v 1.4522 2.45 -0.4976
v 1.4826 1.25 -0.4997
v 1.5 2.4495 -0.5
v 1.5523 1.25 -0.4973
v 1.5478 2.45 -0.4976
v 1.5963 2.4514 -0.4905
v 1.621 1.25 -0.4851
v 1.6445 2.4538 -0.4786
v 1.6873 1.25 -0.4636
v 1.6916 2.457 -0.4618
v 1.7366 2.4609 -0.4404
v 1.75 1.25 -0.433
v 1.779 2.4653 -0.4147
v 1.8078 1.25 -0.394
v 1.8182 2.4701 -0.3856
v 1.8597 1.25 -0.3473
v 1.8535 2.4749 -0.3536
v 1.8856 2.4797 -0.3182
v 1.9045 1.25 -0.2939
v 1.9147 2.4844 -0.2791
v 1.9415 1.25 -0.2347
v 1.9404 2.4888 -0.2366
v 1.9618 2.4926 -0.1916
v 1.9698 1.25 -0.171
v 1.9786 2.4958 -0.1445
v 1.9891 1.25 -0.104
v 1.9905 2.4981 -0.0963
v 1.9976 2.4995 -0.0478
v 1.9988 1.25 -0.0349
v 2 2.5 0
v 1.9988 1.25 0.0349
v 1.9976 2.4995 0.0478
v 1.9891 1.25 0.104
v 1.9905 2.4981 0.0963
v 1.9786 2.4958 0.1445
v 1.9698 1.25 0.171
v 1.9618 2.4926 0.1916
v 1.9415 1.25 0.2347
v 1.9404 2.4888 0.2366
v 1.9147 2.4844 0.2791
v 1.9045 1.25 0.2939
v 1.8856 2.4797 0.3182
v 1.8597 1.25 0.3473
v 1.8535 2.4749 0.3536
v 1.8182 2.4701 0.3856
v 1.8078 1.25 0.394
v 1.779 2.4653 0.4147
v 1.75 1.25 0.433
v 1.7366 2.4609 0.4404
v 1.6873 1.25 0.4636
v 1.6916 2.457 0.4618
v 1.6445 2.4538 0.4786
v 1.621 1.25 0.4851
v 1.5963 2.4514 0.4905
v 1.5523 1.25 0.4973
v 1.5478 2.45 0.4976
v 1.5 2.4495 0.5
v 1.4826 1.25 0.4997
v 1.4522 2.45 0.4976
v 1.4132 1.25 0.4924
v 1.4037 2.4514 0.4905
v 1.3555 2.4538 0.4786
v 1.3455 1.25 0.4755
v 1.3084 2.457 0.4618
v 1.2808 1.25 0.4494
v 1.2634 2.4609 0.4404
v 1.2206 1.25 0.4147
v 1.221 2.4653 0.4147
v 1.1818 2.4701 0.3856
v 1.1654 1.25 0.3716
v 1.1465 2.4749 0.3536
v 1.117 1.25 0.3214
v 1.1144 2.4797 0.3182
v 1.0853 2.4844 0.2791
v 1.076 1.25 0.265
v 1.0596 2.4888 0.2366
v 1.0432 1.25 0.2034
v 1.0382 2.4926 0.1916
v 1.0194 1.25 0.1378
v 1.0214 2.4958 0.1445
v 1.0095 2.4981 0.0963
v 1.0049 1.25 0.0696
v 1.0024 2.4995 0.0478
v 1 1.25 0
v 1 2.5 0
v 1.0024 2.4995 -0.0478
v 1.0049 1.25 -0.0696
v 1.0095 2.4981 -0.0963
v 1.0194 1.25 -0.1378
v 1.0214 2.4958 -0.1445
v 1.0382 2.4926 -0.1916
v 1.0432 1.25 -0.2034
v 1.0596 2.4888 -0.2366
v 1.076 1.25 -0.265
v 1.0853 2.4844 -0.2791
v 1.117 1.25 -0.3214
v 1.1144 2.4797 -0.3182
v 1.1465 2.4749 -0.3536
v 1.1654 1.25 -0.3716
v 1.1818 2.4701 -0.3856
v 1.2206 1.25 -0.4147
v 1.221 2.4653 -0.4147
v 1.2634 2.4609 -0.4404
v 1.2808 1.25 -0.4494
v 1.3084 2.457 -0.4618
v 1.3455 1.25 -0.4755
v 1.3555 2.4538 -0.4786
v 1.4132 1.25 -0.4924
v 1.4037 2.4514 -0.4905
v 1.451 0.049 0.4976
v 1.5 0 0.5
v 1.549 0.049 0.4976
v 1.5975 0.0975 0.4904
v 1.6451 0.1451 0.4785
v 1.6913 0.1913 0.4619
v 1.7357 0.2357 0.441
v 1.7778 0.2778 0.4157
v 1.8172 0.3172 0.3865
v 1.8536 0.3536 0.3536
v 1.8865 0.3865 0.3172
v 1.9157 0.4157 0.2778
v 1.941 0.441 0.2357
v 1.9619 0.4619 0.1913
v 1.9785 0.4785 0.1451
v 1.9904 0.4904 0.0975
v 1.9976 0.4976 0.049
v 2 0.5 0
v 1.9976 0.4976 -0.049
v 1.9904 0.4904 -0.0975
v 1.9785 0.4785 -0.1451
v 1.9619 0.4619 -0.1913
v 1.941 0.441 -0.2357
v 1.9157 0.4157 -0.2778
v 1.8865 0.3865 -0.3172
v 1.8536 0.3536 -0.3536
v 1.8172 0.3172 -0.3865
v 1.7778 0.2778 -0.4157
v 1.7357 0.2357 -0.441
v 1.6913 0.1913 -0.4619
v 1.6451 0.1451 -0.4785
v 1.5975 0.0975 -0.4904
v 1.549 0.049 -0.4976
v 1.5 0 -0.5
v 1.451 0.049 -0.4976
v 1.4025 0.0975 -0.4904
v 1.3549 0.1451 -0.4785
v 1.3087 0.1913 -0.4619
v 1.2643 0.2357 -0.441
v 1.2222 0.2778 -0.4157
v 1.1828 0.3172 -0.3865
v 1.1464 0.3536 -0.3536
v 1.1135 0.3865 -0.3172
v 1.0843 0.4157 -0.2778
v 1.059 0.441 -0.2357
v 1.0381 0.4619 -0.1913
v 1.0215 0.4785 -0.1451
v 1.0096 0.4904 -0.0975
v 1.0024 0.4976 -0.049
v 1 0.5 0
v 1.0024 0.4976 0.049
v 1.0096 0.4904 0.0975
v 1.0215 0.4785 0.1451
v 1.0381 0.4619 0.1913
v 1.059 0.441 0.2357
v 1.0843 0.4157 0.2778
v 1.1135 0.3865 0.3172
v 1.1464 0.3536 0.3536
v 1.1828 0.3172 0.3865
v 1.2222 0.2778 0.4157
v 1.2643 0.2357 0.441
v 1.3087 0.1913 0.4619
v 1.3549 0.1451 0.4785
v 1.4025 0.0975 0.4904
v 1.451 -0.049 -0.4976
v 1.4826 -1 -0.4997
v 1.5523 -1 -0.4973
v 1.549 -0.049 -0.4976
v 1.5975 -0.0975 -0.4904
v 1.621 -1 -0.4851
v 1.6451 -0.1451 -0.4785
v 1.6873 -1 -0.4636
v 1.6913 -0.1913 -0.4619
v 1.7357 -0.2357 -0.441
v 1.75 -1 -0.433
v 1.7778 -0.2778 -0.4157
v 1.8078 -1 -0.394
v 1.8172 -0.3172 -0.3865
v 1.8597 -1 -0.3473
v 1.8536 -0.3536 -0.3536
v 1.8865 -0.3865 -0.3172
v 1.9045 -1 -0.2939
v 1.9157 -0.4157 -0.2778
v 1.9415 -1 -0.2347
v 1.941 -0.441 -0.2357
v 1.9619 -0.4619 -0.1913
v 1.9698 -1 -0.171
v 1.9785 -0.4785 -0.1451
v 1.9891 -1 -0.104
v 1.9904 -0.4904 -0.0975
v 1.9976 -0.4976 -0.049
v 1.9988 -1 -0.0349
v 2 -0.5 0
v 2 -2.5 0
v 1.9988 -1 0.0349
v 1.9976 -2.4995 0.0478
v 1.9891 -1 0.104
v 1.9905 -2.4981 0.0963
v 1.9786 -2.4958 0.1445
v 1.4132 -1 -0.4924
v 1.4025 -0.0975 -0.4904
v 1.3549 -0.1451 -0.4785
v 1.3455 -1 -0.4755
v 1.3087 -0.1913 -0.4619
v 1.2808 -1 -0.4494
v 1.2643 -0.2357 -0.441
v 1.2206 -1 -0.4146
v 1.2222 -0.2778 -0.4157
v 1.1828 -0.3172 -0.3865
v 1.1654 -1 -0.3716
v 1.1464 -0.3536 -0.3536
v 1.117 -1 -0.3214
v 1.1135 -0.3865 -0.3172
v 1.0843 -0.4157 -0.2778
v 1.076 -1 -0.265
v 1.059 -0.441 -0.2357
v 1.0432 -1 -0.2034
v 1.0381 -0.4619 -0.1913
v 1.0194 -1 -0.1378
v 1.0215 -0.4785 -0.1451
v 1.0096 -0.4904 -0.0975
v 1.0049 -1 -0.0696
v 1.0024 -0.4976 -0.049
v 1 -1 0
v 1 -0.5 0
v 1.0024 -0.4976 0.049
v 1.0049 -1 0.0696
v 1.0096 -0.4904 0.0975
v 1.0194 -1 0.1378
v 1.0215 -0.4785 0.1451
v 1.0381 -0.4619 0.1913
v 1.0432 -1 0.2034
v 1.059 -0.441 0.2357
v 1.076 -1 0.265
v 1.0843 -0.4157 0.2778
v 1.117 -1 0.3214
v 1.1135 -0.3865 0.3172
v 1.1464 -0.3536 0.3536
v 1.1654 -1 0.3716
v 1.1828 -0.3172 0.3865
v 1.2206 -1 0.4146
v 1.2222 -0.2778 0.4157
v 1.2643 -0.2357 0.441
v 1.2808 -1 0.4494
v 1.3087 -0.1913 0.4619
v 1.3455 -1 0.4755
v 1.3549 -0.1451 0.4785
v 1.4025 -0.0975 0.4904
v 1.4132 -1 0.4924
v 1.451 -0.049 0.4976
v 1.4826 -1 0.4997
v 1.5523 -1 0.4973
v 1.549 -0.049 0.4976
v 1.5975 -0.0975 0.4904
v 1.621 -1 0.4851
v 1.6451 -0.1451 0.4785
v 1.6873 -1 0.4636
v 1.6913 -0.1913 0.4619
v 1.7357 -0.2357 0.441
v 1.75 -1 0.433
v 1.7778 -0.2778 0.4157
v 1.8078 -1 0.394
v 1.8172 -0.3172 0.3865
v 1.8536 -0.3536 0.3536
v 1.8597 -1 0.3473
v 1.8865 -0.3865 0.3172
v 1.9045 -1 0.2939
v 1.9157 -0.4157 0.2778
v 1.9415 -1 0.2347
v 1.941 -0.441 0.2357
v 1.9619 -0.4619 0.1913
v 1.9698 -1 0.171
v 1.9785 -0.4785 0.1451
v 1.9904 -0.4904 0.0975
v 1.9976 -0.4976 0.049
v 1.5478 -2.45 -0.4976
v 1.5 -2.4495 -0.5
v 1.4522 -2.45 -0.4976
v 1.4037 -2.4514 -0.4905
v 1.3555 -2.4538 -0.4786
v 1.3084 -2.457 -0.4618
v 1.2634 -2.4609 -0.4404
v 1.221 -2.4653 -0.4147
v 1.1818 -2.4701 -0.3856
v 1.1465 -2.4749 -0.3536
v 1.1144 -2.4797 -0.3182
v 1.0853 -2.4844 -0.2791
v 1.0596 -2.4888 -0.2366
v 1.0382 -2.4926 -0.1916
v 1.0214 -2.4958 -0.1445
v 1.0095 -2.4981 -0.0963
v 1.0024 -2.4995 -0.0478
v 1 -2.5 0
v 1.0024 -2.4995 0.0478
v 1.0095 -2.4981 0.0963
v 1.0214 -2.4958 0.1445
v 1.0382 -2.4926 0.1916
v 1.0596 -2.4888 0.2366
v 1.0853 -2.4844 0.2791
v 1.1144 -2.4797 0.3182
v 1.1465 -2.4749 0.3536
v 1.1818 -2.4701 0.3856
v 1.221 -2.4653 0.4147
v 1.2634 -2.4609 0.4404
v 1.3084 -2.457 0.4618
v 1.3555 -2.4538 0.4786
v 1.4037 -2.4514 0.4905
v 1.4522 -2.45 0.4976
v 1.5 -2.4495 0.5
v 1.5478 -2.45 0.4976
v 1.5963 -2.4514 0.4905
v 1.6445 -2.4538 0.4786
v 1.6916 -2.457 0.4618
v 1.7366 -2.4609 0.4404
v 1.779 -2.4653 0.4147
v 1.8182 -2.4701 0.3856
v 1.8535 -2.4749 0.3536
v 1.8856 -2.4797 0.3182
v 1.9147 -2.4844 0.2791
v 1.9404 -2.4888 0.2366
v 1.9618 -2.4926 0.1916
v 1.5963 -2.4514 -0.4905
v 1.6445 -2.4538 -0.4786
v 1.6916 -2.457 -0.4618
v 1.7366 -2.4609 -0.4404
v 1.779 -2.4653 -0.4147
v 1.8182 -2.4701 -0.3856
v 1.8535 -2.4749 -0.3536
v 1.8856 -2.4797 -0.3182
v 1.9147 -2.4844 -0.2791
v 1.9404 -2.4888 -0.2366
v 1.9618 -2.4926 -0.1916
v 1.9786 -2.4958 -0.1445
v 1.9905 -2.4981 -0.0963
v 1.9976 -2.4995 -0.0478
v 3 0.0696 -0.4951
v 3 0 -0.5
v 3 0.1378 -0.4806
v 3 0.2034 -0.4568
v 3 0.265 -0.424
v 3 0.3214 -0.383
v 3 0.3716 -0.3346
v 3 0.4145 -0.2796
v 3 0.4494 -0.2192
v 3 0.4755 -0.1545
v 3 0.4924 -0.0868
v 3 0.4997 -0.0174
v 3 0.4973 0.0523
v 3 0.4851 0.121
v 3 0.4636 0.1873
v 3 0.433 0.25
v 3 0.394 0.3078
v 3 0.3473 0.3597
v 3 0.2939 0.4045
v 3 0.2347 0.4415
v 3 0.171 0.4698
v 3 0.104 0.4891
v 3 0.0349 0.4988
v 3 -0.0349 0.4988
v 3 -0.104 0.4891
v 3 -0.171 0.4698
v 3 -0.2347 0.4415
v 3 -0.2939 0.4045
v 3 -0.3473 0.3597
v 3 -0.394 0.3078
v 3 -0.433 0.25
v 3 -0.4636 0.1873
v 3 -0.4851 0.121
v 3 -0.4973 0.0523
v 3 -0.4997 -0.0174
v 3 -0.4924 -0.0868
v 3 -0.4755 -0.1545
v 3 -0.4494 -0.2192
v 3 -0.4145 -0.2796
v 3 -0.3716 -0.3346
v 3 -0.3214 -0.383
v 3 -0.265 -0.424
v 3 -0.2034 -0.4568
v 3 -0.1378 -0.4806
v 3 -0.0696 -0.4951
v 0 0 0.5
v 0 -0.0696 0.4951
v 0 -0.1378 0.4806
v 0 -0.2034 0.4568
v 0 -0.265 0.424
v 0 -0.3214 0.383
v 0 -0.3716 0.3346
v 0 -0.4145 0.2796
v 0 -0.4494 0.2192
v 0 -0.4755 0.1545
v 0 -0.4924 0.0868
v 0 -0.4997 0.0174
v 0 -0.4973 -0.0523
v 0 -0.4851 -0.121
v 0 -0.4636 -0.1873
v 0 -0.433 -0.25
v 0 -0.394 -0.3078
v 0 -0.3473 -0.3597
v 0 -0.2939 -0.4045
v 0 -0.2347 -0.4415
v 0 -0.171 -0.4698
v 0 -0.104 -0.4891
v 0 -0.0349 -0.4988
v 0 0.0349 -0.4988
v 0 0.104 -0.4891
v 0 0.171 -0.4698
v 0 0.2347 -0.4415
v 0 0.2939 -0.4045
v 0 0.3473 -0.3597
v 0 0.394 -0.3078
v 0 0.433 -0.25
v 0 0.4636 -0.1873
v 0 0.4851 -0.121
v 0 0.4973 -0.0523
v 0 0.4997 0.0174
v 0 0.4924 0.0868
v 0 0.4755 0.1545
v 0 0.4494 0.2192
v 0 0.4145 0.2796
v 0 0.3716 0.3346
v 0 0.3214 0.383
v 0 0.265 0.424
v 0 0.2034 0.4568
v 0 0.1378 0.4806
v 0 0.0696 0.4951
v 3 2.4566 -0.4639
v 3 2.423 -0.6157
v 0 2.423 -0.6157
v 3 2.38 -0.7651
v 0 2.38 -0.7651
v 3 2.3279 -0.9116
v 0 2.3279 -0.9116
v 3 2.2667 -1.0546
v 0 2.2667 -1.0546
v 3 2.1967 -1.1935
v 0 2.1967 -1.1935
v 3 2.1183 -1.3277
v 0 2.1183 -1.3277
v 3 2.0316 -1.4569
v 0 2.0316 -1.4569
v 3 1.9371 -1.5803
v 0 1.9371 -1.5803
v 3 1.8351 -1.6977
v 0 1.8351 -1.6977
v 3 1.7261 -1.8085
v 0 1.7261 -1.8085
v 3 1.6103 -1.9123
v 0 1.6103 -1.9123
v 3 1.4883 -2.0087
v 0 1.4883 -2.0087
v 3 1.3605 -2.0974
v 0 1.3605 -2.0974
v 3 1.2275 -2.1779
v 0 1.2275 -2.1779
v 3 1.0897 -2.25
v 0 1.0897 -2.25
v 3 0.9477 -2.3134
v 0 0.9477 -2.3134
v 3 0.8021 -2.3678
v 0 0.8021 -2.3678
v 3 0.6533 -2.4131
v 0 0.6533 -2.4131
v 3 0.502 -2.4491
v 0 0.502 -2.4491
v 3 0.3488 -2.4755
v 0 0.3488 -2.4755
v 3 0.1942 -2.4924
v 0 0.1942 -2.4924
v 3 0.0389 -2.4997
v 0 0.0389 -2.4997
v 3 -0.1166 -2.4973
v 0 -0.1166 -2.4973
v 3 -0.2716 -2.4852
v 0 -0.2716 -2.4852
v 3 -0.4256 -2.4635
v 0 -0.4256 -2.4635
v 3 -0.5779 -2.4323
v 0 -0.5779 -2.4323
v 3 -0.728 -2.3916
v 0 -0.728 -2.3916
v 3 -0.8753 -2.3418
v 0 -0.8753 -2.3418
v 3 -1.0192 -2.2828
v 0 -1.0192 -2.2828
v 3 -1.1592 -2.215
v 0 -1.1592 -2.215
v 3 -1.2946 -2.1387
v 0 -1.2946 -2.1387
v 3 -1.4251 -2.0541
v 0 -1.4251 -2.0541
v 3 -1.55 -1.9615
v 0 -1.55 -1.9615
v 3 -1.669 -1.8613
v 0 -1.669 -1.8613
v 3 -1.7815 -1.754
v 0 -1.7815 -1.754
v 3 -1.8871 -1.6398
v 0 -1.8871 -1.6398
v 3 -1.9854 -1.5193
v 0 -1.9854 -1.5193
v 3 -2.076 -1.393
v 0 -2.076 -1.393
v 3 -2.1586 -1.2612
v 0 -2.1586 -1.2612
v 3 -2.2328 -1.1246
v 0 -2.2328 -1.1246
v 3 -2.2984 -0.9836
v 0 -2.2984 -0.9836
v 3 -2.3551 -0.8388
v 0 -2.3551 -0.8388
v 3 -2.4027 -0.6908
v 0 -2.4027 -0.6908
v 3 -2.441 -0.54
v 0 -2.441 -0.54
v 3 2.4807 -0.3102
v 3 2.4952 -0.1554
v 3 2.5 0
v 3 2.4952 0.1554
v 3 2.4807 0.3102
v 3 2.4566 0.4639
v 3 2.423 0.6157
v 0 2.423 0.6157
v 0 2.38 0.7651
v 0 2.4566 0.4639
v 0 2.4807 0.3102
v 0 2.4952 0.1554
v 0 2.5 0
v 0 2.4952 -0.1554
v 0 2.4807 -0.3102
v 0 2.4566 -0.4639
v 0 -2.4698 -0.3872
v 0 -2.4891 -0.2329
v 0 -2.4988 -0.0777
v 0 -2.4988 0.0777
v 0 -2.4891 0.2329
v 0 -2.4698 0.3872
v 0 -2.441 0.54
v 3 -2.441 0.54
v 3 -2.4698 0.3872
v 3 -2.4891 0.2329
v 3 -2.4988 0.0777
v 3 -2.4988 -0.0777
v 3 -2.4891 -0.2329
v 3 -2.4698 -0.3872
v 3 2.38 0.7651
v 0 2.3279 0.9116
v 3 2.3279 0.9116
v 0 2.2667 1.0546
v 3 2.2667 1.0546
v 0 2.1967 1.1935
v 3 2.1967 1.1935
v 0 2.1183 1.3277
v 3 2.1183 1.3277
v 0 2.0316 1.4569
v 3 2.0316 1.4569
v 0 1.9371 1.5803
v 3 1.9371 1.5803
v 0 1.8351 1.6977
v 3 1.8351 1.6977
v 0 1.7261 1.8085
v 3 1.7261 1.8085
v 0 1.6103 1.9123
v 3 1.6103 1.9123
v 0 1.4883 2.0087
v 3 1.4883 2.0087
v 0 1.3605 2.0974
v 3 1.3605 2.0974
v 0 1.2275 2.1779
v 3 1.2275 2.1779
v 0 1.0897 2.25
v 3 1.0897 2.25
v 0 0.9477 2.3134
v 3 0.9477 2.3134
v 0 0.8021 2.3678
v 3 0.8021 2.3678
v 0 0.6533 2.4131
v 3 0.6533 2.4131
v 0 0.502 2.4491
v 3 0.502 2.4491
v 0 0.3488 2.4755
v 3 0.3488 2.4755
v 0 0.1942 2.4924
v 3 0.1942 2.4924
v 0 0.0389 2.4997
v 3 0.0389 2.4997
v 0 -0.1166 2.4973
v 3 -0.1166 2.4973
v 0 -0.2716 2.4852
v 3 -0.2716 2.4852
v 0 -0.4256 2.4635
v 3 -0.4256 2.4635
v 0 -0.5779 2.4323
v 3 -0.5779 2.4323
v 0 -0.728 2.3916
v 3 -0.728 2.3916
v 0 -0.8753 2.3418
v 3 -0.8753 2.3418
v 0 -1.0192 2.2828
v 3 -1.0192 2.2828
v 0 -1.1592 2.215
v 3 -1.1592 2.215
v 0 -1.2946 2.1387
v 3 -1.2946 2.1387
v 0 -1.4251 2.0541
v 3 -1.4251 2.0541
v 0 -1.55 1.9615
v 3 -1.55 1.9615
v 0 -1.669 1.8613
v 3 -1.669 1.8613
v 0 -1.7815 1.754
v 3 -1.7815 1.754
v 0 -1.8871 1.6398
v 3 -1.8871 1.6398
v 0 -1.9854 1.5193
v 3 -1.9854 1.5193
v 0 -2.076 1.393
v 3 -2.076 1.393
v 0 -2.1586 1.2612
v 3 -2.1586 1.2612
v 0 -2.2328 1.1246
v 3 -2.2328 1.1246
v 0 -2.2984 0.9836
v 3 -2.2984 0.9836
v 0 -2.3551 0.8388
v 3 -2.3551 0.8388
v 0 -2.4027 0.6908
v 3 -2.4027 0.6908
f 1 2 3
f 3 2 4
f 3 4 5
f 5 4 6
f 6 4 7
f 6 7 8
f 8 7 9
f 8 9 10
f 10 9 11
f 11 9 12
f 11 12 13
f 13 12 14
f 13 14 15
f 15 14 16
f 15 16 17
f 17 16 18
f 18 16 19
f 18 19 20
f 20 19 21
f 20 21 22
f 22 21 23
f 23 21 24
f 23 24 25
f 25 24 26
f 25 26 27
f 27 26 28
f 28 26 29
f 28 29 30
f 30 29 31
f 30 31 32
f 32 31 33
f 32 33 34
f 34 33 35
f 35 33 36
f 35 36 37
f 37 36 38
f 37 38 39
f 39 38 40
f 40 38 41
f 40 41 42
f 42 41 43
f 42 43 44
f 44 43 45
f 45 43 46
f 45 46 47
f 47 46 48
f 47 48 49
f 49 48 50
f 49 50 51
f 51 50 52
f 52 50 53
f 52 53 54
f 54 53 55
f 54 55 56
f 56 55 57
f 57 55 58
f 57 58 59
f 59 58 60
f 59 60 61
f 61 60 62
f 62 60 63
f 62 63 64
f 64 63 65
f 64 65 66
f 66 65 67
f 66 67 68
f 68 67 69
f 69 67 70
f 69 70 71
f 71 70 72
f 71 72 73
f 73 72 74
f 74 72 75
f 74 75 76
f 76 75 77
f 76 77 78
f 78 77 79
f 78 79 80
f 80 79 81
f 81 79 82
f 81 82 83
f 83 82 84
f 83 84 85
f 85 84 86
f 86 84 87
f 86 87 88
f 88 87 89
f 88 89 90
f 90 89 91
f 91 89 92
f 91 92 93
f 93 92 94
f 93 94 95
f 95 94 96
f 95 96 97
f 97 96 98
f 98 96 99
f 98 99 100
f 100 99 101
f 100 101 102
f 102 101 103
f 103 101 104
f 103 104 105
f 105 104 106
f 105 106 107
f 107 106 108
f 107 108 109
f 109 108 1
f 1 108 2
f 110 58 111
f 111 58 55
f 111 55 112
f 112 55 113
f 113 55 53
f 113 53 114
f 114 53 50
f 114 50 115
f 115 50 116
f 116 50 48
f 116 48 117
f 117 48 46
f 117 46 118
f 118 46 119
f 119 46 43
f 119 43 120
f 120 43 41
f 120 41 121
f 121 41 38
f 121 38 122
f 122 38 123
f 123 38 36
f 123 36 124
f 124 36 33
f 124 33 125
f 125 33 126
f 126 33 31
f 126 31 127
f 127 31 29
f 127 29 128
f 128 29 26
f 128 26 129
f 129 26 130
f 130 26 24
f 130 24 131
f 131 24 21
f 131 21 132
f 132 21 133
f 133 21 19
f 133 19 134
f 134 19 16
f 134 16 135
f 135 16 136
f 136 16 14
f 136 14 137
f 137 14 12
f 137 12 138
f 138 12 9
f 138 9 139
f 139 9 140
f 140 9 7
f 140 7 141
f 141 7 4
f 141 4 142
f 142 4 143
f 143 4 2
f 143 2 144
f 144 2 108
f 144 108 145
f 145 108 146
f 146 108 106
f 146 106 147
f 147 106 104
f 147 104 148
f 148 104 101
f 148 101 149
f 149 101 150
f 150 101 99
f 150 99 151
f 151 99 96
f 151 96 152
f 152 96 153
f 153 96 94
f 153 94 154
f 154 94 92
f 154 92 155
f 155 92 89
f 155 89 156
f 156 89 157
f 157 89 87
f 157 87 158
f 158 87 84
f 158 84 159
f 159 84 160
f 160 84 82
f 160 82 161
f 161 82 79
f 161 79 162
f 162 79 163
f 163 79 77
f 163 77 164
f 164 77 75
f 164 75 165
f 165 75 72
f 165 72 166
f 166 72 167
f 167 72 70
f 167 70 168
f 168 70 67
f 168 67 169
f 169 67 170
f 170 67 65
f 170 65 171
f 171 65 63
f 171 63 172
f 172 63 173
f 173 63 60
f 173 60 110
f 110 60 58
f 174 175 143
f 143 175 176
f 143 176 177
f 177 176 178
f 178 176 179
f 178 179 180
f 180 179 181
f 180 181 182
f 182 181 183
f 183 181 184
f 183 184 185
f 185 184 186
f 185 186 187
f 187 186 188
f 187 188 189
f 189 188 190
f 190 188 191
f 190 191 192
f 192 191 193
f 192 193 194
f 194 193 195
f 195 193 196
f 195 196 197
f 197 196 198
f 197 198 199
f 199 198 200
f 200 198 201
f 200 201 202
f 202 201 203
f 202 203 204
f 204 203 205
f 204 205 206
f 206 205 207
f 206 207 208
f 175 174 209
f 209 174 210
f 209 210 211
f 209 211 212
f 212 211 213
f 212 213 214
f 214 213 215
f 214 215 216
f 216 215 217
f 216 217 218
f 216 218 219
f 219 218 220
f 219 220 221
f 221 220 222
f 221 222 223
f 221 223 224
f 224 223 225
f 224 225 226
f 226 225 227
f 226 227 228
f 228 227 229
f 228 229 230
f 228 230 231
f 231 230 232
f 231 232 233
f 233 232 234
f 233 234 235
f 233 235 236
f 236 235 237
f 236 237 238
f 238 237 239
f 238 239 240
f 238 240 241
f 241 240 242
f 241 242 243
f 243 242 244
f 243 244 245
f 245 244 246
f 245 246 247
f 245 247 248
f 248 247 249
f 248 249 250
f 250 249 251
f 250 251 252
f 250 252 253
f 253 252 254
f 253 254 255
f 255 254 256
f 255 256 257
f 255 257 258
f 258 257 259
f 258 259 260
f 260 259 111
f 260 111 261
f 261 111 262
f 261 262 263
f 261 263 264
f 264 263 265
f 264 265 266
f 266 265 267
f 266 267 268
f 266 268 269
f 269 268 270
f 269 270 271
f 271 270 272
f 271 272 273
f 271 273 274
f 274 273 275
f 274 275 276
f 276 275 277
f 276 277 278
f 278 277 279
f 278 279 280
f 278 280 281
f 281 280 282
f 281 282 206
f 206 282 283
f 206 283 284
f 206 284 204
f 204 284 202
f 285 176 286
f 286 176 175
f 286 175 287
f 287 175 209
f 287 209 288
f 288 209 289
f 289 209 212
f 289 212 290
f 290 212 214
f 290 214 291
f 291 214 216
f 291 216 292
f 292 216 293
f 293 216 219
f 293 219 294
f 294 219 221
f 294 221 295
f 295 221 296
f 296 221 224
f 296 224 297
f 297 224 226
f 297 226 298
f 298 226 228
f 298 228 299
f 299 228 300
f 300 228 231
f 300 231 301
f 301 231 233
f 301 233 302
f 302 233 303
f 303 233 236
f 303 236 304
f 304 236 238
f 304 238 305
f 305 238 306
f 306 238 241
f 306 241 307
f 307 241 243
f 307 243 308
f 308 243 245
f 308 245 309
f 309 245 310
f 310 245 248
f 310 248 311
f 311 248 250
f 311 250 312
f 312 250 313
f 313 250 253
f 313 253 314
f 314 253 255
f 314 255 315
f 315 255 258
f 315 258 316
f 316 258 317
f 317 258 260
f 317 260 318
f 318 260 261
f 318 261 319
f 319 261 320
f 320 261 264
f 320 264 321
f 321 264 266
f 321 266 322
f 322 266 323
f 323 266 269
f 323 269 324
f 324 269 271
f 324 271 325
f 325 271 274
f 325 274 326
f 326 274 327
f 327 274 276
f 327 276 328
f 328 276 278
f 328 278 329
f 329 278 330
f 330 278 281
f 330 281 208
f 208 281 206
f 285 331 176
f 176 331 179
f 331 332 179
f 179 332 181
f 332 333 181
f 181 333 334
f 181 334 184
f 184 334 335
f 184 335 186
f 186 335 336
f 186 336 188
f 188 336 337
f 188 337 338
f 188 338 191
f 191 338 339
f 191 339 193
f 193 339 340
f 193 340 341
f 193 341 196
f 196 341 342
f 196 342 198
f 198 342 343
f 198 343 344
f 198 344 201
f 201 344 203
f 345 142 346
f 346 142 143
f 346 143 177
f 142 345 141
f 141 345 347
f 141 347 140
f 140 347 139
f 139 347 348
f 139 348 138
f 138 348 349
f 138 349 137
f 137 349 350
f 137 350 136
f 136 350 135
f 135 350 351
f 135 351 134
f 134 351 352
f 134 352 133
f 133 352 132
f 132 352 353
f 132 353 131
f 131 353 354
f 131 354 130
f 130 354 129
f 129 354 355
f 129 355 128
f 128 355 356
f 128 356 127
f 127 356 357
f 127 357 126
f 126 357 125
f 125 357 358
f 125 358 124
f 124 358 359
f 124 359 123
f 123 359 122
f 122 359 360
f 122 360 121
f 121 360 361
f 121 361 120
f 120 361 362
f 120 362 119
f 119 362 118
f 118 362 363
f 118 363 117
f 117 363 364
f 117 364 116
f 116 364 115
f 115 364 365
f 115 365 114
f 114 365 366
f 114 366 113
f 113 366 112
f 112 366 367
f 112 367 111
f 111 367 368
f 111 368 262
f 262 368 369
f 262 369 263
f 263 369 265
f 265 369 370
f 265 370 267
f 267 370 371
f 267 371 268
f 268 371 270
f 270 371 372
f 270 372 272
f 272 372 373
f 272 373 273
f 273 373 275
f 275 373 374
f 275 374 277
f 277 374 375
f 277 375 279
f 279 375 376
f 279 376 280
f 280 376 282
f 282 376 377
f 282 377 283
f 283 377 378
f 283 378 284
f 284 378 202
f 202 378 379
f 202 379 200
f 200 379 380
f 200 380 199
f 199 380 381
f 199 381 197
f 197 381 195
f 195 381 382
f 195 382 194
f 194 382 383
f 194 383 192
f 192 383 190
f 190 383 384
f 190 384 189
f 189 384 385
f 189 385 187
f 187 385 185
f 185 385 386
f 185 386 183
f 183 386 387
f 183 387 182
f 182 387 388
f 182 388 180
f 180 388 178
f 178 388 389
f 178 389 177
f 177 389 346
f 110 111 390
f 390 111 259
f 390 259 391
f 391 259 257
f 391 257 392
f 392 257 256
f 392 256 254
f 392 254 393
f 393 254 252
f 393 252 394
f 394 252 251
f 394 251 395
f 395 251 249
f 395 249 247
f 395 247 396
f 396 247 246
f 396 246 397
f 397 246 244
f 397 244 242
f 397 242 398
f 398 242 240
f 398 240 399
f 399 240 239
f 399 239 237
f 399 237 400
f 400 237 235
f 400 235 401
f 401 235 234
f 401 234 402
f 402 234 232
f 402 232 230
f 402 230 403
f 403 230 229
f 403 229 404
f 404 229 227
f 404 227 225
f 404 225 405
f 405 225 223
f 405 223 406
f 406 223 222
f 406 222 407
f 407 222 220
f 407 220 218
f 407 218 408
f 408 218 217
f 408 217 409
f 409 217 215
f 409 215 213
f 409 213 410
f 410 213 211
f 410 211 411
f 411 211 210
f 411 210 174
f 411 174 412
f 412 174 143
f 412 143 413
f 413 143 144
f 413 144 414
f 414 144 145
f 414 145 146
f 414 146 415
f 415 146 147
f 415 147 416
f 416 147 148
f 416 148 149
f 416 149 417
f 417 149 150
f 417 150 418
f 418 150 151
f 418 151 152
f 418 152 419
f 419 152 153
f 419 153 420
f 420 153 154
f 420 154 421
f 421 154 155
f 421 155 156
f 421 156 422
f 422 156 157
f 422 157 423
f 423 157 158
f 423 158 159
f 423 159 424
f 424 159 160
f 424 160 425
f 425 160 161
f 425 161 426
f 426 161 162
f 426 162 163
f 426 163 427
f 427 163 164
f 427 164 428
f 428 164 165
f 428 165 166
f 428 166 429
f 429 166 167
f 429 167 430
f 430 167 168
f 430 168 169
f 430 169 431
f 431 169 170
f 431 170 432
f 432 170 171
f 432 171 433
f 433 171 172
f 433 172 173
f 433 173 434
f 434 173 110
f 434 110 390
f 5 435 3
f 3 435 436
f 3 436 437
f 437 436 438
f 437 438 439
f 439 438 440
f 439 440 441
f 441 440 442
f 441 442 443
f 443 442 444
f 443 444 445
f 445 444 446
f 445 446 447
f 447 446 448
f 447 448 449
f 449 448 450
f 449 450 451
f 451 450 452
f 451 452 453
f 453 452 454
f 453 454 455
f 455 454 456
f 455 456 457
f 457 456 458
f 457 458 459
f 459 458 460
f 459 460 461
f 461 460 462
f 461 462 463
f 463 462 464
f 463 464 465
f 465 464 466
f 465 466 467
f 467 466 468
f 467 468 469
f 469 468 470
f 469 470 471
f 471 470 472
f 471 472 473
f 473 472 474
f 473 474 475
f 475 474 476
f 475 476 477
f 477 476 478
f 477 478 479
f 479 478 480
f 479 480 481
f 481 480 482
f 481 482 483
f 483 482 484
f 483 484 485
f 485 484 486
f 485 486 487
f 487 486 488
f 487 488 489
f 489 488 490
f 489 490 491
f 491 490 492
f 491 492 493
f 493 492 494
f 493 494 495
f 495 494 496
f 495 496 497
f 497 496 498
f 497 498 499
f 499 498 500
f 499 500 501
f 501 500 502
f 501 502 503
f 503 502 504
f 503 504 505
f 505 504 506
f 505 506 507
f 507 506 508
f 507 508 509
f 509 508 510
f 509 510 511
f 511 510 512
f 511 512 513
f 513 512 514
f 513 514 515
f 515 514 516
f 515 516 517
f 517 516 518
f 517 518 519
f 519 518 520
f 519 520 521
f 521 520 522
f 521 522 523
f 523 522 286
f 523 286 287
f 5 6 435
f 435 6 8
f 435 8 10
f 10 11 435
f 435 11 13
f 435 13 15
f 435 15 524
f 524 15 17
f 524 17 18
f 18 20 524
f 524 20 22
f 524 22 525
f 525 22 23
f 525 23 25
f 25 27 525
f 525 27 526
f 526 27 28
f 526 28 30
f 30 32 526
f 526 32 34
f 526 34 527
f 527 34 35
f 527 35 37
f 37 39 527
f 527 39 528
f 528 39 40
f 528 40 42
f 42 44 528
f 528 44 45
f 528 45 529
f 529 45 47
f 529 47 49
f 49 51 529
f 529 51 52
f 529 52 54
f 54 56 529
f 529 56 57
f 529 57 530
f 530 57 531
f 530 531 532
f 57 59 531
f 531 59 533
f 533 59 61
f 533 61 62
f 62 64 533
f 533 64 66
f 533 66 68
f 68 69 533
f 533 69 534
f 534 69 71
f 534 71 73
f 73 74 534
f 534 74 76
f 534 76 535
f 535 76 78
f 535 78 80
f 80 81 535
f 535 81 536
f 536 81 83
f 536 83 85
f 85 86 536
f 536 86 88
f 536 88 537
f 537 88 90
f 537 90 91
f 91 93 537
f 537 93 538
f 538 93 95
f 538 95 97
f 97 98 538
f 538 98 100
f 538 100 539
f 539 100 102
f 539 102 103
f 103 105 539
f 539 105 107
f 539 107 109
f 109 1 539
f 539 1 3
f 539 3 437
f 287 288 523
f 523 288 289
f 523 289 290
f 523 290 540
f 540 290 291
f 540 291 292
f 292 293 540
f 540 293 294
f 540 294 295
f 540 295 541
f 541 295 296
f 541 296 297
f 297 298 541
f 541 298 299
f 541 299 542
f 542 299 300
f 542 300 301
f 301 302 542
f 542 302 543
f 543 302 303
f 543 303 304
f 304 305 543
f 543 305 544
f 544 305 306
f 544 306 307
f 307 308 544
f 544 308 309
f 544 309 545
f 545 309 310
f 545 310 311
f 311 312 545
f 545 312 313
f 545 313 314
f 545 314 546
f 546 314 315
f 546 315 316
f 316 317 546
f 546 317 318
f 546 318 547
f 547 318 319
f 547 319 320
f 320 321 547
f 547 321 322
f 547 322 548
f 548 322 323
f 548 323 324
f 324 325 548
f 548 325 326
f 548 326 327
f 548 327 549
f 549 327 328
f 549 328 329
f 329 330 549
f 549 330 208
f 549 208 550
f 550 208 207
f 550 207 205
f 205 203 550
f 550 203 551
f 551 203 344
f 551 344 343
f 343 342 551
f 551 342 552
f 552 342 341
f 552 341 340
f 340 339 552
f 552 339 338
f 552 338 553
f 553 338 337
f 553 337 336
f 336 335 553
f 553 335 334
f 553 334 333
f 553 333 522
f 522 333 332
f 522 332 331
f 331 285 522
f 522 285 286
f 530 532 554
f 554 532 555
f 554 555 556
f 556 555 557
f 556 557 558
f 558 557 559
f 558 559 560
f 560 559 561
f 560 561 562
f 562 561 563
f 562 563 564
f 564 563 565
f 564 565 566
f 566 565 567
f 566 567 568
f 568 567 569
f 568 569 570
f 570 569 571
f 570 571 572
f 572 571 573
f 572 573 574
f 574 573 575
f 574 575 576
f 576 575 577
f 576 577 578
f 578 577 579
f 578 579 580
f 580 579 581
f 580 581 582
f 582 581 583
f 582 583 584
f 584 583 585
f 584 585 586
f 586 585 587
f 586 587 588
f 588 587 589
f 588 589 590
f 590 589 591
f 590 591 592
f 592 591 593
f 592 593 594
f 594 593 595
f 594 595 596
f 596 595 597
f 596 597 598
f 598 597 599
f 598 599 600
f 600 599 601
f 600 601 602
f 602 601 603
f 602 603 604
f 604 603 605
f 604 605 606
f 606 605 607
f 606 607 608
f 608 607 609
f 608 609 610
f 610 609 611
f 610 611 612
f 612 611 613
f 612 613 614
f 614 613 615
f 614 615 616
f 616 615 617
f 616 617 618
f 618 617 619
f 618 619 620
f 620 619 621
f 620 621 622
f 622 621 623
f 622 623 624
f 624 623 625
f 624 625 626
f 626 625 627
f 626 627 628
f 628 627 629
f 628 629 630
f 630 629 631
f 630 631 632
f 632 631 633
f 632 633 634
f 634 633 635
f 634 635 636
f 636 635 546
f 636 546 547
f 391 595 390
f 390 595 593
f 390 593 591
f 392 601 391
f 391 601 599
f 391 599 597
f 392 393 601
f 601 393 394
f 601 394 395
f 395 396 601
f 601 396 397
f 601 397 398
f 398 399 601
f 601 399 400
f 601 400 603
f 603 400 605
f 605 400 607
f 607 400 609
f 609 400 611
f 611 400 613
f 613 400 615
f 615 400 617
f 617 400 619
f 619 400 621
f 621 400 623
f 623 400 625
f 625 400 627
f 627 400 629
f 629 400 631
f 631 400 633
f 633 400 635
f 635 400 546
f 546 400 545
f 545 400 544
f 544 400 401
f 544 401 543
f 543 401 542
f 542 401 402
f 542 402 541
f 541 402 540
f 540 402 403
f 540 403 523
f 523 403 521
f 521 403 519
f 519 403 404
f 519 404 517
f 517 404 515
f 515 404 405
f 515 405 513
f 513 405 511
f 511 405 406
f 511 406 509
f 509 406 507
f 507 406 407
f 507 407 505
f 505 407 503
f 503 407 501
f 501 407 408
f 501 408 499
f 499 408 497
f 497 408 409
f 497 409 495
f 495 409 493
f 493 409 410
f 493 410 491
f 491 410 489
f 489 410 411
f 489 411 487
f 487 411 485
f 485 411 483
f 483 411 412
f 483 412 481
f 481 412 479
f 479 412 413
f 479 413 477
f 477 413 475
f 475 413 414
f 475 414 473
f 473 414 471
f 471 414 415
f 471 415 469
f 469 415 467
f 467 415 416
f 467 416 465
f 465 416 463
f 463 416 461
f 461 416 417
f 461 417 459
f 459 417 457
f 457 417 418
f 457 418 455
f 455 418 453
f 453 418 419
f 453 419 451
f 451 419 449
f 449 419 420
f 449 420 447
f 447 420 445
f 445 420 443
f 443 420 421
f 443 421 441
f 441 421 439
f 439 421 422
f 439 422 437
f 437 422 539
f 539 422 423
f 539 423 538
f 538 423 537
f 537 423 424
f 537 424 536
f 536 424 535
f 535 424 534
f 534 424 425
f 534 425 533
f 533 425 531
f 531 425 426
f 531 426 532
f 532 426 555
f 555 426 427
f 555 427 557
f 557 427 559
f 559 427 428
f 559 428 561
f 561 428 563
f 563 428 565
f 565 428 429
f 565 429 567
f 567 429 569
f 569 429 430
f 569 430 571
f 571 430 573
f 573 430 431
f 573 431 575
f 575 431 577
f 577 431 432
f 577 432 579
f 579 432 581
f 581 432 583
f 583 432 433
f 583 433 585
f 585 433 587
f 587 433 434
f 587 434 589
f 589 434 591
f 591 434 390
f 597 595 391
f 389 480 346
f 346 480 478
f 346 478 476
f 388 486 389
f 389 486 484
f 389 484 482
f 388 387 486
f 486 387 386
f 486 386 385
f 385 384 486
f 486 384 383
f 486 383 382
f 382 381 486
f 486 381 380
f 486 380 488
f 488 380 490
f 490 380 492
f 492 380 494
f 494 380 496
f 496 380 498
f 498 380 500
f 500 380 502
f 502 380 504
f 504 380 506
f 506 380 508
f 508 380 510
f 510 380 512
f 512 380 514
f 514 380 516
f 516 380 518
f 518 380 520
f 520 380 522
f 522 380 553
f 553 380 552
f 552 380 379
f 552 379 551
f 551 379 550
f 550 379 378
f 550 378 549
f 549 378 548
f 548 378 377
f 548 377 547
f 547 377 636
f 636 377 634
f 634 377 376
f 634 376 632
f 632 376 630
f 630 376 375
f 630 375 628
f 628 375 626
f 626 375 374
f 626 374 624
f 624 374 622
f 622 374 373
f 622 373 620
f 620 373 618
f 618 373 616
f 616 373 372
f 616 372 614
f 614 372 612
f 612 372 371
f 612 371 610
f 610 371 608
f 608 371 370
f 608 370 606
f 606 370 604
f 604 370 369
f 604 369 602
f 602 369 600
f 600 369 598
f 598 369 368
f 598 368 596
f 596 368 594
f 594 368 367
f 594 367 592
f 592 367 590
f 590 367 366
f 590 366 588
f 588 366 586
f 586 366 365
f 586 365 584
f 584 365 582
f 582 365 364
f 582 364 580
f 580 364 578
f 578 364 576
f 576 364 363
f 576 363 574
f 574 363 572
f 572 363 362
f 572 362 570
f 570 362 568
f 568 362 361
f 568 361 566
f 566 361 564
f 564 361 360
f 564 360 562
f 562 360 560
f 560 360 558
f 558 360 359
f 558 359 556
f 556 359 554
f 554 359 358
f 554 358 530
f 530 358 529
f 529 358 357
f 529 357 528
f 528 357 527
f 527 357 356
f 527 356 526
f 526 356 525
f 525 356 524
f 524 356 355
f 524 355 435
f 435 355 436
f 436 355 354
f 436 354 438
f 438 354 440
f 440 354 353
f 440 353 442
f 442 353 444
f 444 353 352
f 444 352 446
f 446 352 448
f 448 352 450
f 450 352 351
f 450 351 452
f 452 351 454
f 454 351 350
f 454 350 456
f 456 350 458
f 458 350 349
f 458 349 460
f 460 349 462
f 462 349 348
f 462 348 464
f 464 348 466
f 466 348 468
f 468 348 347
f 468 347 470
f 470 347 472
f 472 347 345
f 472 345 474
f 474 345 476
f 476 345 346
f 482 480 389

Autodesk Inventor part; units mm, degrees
ref_plane "YZ Plane" through (0, 0, 0) normal (1, 0, 0) x (0, 1, 0)
ref_plane "XZ Plane" through (0, 0, 0) normal (0, 1, 0) x (-1, 0, 0)
ref_plane "XY Plane" through (0, 0, 0) normal (0, 0, 1) x (1, 0, 0)
sketch "스케치1" plane through (0, 0, 0) normal (1, 0, 0) x (0, 1, 0)
  circle A0 centre (0, 0) radius 2.5
  circle A1 centre (0, 0) radius 1
  dimension "d0" = 5
  dimension "d1" = 2
extrude "돌출1" add sketch "스케치1" along normal blind 3 contours A0 | A1
sketch "스케치2" plane through (3, 0, 0) normal (1, 0, 0) x (0, 0, -1)
  circle A0 centre (0, 0) radius 0.5
  dimension "d4" = 1
extrude "돌출2" cut sketch "스케치2" against normal blind 11.5
sketch "스케치3" plane through (0, 0, 0) normal (0, 1, 0) x (-1, 0, 0)
  line L0 (-3, 2.5) -> (-3, -2.5) projected
  line L1 (0, 2.5) -> (0, -2.5) projected
  line L2 (0, 0) -> (-3, 0)
  circle A0 centre (-1.5, 0) radius 0.5
  dimension "d7" = 1
extrude "돌출3" cut sketch "스케치3" along normal mid plane 11.5
properties part number "_3D 인쇄"
